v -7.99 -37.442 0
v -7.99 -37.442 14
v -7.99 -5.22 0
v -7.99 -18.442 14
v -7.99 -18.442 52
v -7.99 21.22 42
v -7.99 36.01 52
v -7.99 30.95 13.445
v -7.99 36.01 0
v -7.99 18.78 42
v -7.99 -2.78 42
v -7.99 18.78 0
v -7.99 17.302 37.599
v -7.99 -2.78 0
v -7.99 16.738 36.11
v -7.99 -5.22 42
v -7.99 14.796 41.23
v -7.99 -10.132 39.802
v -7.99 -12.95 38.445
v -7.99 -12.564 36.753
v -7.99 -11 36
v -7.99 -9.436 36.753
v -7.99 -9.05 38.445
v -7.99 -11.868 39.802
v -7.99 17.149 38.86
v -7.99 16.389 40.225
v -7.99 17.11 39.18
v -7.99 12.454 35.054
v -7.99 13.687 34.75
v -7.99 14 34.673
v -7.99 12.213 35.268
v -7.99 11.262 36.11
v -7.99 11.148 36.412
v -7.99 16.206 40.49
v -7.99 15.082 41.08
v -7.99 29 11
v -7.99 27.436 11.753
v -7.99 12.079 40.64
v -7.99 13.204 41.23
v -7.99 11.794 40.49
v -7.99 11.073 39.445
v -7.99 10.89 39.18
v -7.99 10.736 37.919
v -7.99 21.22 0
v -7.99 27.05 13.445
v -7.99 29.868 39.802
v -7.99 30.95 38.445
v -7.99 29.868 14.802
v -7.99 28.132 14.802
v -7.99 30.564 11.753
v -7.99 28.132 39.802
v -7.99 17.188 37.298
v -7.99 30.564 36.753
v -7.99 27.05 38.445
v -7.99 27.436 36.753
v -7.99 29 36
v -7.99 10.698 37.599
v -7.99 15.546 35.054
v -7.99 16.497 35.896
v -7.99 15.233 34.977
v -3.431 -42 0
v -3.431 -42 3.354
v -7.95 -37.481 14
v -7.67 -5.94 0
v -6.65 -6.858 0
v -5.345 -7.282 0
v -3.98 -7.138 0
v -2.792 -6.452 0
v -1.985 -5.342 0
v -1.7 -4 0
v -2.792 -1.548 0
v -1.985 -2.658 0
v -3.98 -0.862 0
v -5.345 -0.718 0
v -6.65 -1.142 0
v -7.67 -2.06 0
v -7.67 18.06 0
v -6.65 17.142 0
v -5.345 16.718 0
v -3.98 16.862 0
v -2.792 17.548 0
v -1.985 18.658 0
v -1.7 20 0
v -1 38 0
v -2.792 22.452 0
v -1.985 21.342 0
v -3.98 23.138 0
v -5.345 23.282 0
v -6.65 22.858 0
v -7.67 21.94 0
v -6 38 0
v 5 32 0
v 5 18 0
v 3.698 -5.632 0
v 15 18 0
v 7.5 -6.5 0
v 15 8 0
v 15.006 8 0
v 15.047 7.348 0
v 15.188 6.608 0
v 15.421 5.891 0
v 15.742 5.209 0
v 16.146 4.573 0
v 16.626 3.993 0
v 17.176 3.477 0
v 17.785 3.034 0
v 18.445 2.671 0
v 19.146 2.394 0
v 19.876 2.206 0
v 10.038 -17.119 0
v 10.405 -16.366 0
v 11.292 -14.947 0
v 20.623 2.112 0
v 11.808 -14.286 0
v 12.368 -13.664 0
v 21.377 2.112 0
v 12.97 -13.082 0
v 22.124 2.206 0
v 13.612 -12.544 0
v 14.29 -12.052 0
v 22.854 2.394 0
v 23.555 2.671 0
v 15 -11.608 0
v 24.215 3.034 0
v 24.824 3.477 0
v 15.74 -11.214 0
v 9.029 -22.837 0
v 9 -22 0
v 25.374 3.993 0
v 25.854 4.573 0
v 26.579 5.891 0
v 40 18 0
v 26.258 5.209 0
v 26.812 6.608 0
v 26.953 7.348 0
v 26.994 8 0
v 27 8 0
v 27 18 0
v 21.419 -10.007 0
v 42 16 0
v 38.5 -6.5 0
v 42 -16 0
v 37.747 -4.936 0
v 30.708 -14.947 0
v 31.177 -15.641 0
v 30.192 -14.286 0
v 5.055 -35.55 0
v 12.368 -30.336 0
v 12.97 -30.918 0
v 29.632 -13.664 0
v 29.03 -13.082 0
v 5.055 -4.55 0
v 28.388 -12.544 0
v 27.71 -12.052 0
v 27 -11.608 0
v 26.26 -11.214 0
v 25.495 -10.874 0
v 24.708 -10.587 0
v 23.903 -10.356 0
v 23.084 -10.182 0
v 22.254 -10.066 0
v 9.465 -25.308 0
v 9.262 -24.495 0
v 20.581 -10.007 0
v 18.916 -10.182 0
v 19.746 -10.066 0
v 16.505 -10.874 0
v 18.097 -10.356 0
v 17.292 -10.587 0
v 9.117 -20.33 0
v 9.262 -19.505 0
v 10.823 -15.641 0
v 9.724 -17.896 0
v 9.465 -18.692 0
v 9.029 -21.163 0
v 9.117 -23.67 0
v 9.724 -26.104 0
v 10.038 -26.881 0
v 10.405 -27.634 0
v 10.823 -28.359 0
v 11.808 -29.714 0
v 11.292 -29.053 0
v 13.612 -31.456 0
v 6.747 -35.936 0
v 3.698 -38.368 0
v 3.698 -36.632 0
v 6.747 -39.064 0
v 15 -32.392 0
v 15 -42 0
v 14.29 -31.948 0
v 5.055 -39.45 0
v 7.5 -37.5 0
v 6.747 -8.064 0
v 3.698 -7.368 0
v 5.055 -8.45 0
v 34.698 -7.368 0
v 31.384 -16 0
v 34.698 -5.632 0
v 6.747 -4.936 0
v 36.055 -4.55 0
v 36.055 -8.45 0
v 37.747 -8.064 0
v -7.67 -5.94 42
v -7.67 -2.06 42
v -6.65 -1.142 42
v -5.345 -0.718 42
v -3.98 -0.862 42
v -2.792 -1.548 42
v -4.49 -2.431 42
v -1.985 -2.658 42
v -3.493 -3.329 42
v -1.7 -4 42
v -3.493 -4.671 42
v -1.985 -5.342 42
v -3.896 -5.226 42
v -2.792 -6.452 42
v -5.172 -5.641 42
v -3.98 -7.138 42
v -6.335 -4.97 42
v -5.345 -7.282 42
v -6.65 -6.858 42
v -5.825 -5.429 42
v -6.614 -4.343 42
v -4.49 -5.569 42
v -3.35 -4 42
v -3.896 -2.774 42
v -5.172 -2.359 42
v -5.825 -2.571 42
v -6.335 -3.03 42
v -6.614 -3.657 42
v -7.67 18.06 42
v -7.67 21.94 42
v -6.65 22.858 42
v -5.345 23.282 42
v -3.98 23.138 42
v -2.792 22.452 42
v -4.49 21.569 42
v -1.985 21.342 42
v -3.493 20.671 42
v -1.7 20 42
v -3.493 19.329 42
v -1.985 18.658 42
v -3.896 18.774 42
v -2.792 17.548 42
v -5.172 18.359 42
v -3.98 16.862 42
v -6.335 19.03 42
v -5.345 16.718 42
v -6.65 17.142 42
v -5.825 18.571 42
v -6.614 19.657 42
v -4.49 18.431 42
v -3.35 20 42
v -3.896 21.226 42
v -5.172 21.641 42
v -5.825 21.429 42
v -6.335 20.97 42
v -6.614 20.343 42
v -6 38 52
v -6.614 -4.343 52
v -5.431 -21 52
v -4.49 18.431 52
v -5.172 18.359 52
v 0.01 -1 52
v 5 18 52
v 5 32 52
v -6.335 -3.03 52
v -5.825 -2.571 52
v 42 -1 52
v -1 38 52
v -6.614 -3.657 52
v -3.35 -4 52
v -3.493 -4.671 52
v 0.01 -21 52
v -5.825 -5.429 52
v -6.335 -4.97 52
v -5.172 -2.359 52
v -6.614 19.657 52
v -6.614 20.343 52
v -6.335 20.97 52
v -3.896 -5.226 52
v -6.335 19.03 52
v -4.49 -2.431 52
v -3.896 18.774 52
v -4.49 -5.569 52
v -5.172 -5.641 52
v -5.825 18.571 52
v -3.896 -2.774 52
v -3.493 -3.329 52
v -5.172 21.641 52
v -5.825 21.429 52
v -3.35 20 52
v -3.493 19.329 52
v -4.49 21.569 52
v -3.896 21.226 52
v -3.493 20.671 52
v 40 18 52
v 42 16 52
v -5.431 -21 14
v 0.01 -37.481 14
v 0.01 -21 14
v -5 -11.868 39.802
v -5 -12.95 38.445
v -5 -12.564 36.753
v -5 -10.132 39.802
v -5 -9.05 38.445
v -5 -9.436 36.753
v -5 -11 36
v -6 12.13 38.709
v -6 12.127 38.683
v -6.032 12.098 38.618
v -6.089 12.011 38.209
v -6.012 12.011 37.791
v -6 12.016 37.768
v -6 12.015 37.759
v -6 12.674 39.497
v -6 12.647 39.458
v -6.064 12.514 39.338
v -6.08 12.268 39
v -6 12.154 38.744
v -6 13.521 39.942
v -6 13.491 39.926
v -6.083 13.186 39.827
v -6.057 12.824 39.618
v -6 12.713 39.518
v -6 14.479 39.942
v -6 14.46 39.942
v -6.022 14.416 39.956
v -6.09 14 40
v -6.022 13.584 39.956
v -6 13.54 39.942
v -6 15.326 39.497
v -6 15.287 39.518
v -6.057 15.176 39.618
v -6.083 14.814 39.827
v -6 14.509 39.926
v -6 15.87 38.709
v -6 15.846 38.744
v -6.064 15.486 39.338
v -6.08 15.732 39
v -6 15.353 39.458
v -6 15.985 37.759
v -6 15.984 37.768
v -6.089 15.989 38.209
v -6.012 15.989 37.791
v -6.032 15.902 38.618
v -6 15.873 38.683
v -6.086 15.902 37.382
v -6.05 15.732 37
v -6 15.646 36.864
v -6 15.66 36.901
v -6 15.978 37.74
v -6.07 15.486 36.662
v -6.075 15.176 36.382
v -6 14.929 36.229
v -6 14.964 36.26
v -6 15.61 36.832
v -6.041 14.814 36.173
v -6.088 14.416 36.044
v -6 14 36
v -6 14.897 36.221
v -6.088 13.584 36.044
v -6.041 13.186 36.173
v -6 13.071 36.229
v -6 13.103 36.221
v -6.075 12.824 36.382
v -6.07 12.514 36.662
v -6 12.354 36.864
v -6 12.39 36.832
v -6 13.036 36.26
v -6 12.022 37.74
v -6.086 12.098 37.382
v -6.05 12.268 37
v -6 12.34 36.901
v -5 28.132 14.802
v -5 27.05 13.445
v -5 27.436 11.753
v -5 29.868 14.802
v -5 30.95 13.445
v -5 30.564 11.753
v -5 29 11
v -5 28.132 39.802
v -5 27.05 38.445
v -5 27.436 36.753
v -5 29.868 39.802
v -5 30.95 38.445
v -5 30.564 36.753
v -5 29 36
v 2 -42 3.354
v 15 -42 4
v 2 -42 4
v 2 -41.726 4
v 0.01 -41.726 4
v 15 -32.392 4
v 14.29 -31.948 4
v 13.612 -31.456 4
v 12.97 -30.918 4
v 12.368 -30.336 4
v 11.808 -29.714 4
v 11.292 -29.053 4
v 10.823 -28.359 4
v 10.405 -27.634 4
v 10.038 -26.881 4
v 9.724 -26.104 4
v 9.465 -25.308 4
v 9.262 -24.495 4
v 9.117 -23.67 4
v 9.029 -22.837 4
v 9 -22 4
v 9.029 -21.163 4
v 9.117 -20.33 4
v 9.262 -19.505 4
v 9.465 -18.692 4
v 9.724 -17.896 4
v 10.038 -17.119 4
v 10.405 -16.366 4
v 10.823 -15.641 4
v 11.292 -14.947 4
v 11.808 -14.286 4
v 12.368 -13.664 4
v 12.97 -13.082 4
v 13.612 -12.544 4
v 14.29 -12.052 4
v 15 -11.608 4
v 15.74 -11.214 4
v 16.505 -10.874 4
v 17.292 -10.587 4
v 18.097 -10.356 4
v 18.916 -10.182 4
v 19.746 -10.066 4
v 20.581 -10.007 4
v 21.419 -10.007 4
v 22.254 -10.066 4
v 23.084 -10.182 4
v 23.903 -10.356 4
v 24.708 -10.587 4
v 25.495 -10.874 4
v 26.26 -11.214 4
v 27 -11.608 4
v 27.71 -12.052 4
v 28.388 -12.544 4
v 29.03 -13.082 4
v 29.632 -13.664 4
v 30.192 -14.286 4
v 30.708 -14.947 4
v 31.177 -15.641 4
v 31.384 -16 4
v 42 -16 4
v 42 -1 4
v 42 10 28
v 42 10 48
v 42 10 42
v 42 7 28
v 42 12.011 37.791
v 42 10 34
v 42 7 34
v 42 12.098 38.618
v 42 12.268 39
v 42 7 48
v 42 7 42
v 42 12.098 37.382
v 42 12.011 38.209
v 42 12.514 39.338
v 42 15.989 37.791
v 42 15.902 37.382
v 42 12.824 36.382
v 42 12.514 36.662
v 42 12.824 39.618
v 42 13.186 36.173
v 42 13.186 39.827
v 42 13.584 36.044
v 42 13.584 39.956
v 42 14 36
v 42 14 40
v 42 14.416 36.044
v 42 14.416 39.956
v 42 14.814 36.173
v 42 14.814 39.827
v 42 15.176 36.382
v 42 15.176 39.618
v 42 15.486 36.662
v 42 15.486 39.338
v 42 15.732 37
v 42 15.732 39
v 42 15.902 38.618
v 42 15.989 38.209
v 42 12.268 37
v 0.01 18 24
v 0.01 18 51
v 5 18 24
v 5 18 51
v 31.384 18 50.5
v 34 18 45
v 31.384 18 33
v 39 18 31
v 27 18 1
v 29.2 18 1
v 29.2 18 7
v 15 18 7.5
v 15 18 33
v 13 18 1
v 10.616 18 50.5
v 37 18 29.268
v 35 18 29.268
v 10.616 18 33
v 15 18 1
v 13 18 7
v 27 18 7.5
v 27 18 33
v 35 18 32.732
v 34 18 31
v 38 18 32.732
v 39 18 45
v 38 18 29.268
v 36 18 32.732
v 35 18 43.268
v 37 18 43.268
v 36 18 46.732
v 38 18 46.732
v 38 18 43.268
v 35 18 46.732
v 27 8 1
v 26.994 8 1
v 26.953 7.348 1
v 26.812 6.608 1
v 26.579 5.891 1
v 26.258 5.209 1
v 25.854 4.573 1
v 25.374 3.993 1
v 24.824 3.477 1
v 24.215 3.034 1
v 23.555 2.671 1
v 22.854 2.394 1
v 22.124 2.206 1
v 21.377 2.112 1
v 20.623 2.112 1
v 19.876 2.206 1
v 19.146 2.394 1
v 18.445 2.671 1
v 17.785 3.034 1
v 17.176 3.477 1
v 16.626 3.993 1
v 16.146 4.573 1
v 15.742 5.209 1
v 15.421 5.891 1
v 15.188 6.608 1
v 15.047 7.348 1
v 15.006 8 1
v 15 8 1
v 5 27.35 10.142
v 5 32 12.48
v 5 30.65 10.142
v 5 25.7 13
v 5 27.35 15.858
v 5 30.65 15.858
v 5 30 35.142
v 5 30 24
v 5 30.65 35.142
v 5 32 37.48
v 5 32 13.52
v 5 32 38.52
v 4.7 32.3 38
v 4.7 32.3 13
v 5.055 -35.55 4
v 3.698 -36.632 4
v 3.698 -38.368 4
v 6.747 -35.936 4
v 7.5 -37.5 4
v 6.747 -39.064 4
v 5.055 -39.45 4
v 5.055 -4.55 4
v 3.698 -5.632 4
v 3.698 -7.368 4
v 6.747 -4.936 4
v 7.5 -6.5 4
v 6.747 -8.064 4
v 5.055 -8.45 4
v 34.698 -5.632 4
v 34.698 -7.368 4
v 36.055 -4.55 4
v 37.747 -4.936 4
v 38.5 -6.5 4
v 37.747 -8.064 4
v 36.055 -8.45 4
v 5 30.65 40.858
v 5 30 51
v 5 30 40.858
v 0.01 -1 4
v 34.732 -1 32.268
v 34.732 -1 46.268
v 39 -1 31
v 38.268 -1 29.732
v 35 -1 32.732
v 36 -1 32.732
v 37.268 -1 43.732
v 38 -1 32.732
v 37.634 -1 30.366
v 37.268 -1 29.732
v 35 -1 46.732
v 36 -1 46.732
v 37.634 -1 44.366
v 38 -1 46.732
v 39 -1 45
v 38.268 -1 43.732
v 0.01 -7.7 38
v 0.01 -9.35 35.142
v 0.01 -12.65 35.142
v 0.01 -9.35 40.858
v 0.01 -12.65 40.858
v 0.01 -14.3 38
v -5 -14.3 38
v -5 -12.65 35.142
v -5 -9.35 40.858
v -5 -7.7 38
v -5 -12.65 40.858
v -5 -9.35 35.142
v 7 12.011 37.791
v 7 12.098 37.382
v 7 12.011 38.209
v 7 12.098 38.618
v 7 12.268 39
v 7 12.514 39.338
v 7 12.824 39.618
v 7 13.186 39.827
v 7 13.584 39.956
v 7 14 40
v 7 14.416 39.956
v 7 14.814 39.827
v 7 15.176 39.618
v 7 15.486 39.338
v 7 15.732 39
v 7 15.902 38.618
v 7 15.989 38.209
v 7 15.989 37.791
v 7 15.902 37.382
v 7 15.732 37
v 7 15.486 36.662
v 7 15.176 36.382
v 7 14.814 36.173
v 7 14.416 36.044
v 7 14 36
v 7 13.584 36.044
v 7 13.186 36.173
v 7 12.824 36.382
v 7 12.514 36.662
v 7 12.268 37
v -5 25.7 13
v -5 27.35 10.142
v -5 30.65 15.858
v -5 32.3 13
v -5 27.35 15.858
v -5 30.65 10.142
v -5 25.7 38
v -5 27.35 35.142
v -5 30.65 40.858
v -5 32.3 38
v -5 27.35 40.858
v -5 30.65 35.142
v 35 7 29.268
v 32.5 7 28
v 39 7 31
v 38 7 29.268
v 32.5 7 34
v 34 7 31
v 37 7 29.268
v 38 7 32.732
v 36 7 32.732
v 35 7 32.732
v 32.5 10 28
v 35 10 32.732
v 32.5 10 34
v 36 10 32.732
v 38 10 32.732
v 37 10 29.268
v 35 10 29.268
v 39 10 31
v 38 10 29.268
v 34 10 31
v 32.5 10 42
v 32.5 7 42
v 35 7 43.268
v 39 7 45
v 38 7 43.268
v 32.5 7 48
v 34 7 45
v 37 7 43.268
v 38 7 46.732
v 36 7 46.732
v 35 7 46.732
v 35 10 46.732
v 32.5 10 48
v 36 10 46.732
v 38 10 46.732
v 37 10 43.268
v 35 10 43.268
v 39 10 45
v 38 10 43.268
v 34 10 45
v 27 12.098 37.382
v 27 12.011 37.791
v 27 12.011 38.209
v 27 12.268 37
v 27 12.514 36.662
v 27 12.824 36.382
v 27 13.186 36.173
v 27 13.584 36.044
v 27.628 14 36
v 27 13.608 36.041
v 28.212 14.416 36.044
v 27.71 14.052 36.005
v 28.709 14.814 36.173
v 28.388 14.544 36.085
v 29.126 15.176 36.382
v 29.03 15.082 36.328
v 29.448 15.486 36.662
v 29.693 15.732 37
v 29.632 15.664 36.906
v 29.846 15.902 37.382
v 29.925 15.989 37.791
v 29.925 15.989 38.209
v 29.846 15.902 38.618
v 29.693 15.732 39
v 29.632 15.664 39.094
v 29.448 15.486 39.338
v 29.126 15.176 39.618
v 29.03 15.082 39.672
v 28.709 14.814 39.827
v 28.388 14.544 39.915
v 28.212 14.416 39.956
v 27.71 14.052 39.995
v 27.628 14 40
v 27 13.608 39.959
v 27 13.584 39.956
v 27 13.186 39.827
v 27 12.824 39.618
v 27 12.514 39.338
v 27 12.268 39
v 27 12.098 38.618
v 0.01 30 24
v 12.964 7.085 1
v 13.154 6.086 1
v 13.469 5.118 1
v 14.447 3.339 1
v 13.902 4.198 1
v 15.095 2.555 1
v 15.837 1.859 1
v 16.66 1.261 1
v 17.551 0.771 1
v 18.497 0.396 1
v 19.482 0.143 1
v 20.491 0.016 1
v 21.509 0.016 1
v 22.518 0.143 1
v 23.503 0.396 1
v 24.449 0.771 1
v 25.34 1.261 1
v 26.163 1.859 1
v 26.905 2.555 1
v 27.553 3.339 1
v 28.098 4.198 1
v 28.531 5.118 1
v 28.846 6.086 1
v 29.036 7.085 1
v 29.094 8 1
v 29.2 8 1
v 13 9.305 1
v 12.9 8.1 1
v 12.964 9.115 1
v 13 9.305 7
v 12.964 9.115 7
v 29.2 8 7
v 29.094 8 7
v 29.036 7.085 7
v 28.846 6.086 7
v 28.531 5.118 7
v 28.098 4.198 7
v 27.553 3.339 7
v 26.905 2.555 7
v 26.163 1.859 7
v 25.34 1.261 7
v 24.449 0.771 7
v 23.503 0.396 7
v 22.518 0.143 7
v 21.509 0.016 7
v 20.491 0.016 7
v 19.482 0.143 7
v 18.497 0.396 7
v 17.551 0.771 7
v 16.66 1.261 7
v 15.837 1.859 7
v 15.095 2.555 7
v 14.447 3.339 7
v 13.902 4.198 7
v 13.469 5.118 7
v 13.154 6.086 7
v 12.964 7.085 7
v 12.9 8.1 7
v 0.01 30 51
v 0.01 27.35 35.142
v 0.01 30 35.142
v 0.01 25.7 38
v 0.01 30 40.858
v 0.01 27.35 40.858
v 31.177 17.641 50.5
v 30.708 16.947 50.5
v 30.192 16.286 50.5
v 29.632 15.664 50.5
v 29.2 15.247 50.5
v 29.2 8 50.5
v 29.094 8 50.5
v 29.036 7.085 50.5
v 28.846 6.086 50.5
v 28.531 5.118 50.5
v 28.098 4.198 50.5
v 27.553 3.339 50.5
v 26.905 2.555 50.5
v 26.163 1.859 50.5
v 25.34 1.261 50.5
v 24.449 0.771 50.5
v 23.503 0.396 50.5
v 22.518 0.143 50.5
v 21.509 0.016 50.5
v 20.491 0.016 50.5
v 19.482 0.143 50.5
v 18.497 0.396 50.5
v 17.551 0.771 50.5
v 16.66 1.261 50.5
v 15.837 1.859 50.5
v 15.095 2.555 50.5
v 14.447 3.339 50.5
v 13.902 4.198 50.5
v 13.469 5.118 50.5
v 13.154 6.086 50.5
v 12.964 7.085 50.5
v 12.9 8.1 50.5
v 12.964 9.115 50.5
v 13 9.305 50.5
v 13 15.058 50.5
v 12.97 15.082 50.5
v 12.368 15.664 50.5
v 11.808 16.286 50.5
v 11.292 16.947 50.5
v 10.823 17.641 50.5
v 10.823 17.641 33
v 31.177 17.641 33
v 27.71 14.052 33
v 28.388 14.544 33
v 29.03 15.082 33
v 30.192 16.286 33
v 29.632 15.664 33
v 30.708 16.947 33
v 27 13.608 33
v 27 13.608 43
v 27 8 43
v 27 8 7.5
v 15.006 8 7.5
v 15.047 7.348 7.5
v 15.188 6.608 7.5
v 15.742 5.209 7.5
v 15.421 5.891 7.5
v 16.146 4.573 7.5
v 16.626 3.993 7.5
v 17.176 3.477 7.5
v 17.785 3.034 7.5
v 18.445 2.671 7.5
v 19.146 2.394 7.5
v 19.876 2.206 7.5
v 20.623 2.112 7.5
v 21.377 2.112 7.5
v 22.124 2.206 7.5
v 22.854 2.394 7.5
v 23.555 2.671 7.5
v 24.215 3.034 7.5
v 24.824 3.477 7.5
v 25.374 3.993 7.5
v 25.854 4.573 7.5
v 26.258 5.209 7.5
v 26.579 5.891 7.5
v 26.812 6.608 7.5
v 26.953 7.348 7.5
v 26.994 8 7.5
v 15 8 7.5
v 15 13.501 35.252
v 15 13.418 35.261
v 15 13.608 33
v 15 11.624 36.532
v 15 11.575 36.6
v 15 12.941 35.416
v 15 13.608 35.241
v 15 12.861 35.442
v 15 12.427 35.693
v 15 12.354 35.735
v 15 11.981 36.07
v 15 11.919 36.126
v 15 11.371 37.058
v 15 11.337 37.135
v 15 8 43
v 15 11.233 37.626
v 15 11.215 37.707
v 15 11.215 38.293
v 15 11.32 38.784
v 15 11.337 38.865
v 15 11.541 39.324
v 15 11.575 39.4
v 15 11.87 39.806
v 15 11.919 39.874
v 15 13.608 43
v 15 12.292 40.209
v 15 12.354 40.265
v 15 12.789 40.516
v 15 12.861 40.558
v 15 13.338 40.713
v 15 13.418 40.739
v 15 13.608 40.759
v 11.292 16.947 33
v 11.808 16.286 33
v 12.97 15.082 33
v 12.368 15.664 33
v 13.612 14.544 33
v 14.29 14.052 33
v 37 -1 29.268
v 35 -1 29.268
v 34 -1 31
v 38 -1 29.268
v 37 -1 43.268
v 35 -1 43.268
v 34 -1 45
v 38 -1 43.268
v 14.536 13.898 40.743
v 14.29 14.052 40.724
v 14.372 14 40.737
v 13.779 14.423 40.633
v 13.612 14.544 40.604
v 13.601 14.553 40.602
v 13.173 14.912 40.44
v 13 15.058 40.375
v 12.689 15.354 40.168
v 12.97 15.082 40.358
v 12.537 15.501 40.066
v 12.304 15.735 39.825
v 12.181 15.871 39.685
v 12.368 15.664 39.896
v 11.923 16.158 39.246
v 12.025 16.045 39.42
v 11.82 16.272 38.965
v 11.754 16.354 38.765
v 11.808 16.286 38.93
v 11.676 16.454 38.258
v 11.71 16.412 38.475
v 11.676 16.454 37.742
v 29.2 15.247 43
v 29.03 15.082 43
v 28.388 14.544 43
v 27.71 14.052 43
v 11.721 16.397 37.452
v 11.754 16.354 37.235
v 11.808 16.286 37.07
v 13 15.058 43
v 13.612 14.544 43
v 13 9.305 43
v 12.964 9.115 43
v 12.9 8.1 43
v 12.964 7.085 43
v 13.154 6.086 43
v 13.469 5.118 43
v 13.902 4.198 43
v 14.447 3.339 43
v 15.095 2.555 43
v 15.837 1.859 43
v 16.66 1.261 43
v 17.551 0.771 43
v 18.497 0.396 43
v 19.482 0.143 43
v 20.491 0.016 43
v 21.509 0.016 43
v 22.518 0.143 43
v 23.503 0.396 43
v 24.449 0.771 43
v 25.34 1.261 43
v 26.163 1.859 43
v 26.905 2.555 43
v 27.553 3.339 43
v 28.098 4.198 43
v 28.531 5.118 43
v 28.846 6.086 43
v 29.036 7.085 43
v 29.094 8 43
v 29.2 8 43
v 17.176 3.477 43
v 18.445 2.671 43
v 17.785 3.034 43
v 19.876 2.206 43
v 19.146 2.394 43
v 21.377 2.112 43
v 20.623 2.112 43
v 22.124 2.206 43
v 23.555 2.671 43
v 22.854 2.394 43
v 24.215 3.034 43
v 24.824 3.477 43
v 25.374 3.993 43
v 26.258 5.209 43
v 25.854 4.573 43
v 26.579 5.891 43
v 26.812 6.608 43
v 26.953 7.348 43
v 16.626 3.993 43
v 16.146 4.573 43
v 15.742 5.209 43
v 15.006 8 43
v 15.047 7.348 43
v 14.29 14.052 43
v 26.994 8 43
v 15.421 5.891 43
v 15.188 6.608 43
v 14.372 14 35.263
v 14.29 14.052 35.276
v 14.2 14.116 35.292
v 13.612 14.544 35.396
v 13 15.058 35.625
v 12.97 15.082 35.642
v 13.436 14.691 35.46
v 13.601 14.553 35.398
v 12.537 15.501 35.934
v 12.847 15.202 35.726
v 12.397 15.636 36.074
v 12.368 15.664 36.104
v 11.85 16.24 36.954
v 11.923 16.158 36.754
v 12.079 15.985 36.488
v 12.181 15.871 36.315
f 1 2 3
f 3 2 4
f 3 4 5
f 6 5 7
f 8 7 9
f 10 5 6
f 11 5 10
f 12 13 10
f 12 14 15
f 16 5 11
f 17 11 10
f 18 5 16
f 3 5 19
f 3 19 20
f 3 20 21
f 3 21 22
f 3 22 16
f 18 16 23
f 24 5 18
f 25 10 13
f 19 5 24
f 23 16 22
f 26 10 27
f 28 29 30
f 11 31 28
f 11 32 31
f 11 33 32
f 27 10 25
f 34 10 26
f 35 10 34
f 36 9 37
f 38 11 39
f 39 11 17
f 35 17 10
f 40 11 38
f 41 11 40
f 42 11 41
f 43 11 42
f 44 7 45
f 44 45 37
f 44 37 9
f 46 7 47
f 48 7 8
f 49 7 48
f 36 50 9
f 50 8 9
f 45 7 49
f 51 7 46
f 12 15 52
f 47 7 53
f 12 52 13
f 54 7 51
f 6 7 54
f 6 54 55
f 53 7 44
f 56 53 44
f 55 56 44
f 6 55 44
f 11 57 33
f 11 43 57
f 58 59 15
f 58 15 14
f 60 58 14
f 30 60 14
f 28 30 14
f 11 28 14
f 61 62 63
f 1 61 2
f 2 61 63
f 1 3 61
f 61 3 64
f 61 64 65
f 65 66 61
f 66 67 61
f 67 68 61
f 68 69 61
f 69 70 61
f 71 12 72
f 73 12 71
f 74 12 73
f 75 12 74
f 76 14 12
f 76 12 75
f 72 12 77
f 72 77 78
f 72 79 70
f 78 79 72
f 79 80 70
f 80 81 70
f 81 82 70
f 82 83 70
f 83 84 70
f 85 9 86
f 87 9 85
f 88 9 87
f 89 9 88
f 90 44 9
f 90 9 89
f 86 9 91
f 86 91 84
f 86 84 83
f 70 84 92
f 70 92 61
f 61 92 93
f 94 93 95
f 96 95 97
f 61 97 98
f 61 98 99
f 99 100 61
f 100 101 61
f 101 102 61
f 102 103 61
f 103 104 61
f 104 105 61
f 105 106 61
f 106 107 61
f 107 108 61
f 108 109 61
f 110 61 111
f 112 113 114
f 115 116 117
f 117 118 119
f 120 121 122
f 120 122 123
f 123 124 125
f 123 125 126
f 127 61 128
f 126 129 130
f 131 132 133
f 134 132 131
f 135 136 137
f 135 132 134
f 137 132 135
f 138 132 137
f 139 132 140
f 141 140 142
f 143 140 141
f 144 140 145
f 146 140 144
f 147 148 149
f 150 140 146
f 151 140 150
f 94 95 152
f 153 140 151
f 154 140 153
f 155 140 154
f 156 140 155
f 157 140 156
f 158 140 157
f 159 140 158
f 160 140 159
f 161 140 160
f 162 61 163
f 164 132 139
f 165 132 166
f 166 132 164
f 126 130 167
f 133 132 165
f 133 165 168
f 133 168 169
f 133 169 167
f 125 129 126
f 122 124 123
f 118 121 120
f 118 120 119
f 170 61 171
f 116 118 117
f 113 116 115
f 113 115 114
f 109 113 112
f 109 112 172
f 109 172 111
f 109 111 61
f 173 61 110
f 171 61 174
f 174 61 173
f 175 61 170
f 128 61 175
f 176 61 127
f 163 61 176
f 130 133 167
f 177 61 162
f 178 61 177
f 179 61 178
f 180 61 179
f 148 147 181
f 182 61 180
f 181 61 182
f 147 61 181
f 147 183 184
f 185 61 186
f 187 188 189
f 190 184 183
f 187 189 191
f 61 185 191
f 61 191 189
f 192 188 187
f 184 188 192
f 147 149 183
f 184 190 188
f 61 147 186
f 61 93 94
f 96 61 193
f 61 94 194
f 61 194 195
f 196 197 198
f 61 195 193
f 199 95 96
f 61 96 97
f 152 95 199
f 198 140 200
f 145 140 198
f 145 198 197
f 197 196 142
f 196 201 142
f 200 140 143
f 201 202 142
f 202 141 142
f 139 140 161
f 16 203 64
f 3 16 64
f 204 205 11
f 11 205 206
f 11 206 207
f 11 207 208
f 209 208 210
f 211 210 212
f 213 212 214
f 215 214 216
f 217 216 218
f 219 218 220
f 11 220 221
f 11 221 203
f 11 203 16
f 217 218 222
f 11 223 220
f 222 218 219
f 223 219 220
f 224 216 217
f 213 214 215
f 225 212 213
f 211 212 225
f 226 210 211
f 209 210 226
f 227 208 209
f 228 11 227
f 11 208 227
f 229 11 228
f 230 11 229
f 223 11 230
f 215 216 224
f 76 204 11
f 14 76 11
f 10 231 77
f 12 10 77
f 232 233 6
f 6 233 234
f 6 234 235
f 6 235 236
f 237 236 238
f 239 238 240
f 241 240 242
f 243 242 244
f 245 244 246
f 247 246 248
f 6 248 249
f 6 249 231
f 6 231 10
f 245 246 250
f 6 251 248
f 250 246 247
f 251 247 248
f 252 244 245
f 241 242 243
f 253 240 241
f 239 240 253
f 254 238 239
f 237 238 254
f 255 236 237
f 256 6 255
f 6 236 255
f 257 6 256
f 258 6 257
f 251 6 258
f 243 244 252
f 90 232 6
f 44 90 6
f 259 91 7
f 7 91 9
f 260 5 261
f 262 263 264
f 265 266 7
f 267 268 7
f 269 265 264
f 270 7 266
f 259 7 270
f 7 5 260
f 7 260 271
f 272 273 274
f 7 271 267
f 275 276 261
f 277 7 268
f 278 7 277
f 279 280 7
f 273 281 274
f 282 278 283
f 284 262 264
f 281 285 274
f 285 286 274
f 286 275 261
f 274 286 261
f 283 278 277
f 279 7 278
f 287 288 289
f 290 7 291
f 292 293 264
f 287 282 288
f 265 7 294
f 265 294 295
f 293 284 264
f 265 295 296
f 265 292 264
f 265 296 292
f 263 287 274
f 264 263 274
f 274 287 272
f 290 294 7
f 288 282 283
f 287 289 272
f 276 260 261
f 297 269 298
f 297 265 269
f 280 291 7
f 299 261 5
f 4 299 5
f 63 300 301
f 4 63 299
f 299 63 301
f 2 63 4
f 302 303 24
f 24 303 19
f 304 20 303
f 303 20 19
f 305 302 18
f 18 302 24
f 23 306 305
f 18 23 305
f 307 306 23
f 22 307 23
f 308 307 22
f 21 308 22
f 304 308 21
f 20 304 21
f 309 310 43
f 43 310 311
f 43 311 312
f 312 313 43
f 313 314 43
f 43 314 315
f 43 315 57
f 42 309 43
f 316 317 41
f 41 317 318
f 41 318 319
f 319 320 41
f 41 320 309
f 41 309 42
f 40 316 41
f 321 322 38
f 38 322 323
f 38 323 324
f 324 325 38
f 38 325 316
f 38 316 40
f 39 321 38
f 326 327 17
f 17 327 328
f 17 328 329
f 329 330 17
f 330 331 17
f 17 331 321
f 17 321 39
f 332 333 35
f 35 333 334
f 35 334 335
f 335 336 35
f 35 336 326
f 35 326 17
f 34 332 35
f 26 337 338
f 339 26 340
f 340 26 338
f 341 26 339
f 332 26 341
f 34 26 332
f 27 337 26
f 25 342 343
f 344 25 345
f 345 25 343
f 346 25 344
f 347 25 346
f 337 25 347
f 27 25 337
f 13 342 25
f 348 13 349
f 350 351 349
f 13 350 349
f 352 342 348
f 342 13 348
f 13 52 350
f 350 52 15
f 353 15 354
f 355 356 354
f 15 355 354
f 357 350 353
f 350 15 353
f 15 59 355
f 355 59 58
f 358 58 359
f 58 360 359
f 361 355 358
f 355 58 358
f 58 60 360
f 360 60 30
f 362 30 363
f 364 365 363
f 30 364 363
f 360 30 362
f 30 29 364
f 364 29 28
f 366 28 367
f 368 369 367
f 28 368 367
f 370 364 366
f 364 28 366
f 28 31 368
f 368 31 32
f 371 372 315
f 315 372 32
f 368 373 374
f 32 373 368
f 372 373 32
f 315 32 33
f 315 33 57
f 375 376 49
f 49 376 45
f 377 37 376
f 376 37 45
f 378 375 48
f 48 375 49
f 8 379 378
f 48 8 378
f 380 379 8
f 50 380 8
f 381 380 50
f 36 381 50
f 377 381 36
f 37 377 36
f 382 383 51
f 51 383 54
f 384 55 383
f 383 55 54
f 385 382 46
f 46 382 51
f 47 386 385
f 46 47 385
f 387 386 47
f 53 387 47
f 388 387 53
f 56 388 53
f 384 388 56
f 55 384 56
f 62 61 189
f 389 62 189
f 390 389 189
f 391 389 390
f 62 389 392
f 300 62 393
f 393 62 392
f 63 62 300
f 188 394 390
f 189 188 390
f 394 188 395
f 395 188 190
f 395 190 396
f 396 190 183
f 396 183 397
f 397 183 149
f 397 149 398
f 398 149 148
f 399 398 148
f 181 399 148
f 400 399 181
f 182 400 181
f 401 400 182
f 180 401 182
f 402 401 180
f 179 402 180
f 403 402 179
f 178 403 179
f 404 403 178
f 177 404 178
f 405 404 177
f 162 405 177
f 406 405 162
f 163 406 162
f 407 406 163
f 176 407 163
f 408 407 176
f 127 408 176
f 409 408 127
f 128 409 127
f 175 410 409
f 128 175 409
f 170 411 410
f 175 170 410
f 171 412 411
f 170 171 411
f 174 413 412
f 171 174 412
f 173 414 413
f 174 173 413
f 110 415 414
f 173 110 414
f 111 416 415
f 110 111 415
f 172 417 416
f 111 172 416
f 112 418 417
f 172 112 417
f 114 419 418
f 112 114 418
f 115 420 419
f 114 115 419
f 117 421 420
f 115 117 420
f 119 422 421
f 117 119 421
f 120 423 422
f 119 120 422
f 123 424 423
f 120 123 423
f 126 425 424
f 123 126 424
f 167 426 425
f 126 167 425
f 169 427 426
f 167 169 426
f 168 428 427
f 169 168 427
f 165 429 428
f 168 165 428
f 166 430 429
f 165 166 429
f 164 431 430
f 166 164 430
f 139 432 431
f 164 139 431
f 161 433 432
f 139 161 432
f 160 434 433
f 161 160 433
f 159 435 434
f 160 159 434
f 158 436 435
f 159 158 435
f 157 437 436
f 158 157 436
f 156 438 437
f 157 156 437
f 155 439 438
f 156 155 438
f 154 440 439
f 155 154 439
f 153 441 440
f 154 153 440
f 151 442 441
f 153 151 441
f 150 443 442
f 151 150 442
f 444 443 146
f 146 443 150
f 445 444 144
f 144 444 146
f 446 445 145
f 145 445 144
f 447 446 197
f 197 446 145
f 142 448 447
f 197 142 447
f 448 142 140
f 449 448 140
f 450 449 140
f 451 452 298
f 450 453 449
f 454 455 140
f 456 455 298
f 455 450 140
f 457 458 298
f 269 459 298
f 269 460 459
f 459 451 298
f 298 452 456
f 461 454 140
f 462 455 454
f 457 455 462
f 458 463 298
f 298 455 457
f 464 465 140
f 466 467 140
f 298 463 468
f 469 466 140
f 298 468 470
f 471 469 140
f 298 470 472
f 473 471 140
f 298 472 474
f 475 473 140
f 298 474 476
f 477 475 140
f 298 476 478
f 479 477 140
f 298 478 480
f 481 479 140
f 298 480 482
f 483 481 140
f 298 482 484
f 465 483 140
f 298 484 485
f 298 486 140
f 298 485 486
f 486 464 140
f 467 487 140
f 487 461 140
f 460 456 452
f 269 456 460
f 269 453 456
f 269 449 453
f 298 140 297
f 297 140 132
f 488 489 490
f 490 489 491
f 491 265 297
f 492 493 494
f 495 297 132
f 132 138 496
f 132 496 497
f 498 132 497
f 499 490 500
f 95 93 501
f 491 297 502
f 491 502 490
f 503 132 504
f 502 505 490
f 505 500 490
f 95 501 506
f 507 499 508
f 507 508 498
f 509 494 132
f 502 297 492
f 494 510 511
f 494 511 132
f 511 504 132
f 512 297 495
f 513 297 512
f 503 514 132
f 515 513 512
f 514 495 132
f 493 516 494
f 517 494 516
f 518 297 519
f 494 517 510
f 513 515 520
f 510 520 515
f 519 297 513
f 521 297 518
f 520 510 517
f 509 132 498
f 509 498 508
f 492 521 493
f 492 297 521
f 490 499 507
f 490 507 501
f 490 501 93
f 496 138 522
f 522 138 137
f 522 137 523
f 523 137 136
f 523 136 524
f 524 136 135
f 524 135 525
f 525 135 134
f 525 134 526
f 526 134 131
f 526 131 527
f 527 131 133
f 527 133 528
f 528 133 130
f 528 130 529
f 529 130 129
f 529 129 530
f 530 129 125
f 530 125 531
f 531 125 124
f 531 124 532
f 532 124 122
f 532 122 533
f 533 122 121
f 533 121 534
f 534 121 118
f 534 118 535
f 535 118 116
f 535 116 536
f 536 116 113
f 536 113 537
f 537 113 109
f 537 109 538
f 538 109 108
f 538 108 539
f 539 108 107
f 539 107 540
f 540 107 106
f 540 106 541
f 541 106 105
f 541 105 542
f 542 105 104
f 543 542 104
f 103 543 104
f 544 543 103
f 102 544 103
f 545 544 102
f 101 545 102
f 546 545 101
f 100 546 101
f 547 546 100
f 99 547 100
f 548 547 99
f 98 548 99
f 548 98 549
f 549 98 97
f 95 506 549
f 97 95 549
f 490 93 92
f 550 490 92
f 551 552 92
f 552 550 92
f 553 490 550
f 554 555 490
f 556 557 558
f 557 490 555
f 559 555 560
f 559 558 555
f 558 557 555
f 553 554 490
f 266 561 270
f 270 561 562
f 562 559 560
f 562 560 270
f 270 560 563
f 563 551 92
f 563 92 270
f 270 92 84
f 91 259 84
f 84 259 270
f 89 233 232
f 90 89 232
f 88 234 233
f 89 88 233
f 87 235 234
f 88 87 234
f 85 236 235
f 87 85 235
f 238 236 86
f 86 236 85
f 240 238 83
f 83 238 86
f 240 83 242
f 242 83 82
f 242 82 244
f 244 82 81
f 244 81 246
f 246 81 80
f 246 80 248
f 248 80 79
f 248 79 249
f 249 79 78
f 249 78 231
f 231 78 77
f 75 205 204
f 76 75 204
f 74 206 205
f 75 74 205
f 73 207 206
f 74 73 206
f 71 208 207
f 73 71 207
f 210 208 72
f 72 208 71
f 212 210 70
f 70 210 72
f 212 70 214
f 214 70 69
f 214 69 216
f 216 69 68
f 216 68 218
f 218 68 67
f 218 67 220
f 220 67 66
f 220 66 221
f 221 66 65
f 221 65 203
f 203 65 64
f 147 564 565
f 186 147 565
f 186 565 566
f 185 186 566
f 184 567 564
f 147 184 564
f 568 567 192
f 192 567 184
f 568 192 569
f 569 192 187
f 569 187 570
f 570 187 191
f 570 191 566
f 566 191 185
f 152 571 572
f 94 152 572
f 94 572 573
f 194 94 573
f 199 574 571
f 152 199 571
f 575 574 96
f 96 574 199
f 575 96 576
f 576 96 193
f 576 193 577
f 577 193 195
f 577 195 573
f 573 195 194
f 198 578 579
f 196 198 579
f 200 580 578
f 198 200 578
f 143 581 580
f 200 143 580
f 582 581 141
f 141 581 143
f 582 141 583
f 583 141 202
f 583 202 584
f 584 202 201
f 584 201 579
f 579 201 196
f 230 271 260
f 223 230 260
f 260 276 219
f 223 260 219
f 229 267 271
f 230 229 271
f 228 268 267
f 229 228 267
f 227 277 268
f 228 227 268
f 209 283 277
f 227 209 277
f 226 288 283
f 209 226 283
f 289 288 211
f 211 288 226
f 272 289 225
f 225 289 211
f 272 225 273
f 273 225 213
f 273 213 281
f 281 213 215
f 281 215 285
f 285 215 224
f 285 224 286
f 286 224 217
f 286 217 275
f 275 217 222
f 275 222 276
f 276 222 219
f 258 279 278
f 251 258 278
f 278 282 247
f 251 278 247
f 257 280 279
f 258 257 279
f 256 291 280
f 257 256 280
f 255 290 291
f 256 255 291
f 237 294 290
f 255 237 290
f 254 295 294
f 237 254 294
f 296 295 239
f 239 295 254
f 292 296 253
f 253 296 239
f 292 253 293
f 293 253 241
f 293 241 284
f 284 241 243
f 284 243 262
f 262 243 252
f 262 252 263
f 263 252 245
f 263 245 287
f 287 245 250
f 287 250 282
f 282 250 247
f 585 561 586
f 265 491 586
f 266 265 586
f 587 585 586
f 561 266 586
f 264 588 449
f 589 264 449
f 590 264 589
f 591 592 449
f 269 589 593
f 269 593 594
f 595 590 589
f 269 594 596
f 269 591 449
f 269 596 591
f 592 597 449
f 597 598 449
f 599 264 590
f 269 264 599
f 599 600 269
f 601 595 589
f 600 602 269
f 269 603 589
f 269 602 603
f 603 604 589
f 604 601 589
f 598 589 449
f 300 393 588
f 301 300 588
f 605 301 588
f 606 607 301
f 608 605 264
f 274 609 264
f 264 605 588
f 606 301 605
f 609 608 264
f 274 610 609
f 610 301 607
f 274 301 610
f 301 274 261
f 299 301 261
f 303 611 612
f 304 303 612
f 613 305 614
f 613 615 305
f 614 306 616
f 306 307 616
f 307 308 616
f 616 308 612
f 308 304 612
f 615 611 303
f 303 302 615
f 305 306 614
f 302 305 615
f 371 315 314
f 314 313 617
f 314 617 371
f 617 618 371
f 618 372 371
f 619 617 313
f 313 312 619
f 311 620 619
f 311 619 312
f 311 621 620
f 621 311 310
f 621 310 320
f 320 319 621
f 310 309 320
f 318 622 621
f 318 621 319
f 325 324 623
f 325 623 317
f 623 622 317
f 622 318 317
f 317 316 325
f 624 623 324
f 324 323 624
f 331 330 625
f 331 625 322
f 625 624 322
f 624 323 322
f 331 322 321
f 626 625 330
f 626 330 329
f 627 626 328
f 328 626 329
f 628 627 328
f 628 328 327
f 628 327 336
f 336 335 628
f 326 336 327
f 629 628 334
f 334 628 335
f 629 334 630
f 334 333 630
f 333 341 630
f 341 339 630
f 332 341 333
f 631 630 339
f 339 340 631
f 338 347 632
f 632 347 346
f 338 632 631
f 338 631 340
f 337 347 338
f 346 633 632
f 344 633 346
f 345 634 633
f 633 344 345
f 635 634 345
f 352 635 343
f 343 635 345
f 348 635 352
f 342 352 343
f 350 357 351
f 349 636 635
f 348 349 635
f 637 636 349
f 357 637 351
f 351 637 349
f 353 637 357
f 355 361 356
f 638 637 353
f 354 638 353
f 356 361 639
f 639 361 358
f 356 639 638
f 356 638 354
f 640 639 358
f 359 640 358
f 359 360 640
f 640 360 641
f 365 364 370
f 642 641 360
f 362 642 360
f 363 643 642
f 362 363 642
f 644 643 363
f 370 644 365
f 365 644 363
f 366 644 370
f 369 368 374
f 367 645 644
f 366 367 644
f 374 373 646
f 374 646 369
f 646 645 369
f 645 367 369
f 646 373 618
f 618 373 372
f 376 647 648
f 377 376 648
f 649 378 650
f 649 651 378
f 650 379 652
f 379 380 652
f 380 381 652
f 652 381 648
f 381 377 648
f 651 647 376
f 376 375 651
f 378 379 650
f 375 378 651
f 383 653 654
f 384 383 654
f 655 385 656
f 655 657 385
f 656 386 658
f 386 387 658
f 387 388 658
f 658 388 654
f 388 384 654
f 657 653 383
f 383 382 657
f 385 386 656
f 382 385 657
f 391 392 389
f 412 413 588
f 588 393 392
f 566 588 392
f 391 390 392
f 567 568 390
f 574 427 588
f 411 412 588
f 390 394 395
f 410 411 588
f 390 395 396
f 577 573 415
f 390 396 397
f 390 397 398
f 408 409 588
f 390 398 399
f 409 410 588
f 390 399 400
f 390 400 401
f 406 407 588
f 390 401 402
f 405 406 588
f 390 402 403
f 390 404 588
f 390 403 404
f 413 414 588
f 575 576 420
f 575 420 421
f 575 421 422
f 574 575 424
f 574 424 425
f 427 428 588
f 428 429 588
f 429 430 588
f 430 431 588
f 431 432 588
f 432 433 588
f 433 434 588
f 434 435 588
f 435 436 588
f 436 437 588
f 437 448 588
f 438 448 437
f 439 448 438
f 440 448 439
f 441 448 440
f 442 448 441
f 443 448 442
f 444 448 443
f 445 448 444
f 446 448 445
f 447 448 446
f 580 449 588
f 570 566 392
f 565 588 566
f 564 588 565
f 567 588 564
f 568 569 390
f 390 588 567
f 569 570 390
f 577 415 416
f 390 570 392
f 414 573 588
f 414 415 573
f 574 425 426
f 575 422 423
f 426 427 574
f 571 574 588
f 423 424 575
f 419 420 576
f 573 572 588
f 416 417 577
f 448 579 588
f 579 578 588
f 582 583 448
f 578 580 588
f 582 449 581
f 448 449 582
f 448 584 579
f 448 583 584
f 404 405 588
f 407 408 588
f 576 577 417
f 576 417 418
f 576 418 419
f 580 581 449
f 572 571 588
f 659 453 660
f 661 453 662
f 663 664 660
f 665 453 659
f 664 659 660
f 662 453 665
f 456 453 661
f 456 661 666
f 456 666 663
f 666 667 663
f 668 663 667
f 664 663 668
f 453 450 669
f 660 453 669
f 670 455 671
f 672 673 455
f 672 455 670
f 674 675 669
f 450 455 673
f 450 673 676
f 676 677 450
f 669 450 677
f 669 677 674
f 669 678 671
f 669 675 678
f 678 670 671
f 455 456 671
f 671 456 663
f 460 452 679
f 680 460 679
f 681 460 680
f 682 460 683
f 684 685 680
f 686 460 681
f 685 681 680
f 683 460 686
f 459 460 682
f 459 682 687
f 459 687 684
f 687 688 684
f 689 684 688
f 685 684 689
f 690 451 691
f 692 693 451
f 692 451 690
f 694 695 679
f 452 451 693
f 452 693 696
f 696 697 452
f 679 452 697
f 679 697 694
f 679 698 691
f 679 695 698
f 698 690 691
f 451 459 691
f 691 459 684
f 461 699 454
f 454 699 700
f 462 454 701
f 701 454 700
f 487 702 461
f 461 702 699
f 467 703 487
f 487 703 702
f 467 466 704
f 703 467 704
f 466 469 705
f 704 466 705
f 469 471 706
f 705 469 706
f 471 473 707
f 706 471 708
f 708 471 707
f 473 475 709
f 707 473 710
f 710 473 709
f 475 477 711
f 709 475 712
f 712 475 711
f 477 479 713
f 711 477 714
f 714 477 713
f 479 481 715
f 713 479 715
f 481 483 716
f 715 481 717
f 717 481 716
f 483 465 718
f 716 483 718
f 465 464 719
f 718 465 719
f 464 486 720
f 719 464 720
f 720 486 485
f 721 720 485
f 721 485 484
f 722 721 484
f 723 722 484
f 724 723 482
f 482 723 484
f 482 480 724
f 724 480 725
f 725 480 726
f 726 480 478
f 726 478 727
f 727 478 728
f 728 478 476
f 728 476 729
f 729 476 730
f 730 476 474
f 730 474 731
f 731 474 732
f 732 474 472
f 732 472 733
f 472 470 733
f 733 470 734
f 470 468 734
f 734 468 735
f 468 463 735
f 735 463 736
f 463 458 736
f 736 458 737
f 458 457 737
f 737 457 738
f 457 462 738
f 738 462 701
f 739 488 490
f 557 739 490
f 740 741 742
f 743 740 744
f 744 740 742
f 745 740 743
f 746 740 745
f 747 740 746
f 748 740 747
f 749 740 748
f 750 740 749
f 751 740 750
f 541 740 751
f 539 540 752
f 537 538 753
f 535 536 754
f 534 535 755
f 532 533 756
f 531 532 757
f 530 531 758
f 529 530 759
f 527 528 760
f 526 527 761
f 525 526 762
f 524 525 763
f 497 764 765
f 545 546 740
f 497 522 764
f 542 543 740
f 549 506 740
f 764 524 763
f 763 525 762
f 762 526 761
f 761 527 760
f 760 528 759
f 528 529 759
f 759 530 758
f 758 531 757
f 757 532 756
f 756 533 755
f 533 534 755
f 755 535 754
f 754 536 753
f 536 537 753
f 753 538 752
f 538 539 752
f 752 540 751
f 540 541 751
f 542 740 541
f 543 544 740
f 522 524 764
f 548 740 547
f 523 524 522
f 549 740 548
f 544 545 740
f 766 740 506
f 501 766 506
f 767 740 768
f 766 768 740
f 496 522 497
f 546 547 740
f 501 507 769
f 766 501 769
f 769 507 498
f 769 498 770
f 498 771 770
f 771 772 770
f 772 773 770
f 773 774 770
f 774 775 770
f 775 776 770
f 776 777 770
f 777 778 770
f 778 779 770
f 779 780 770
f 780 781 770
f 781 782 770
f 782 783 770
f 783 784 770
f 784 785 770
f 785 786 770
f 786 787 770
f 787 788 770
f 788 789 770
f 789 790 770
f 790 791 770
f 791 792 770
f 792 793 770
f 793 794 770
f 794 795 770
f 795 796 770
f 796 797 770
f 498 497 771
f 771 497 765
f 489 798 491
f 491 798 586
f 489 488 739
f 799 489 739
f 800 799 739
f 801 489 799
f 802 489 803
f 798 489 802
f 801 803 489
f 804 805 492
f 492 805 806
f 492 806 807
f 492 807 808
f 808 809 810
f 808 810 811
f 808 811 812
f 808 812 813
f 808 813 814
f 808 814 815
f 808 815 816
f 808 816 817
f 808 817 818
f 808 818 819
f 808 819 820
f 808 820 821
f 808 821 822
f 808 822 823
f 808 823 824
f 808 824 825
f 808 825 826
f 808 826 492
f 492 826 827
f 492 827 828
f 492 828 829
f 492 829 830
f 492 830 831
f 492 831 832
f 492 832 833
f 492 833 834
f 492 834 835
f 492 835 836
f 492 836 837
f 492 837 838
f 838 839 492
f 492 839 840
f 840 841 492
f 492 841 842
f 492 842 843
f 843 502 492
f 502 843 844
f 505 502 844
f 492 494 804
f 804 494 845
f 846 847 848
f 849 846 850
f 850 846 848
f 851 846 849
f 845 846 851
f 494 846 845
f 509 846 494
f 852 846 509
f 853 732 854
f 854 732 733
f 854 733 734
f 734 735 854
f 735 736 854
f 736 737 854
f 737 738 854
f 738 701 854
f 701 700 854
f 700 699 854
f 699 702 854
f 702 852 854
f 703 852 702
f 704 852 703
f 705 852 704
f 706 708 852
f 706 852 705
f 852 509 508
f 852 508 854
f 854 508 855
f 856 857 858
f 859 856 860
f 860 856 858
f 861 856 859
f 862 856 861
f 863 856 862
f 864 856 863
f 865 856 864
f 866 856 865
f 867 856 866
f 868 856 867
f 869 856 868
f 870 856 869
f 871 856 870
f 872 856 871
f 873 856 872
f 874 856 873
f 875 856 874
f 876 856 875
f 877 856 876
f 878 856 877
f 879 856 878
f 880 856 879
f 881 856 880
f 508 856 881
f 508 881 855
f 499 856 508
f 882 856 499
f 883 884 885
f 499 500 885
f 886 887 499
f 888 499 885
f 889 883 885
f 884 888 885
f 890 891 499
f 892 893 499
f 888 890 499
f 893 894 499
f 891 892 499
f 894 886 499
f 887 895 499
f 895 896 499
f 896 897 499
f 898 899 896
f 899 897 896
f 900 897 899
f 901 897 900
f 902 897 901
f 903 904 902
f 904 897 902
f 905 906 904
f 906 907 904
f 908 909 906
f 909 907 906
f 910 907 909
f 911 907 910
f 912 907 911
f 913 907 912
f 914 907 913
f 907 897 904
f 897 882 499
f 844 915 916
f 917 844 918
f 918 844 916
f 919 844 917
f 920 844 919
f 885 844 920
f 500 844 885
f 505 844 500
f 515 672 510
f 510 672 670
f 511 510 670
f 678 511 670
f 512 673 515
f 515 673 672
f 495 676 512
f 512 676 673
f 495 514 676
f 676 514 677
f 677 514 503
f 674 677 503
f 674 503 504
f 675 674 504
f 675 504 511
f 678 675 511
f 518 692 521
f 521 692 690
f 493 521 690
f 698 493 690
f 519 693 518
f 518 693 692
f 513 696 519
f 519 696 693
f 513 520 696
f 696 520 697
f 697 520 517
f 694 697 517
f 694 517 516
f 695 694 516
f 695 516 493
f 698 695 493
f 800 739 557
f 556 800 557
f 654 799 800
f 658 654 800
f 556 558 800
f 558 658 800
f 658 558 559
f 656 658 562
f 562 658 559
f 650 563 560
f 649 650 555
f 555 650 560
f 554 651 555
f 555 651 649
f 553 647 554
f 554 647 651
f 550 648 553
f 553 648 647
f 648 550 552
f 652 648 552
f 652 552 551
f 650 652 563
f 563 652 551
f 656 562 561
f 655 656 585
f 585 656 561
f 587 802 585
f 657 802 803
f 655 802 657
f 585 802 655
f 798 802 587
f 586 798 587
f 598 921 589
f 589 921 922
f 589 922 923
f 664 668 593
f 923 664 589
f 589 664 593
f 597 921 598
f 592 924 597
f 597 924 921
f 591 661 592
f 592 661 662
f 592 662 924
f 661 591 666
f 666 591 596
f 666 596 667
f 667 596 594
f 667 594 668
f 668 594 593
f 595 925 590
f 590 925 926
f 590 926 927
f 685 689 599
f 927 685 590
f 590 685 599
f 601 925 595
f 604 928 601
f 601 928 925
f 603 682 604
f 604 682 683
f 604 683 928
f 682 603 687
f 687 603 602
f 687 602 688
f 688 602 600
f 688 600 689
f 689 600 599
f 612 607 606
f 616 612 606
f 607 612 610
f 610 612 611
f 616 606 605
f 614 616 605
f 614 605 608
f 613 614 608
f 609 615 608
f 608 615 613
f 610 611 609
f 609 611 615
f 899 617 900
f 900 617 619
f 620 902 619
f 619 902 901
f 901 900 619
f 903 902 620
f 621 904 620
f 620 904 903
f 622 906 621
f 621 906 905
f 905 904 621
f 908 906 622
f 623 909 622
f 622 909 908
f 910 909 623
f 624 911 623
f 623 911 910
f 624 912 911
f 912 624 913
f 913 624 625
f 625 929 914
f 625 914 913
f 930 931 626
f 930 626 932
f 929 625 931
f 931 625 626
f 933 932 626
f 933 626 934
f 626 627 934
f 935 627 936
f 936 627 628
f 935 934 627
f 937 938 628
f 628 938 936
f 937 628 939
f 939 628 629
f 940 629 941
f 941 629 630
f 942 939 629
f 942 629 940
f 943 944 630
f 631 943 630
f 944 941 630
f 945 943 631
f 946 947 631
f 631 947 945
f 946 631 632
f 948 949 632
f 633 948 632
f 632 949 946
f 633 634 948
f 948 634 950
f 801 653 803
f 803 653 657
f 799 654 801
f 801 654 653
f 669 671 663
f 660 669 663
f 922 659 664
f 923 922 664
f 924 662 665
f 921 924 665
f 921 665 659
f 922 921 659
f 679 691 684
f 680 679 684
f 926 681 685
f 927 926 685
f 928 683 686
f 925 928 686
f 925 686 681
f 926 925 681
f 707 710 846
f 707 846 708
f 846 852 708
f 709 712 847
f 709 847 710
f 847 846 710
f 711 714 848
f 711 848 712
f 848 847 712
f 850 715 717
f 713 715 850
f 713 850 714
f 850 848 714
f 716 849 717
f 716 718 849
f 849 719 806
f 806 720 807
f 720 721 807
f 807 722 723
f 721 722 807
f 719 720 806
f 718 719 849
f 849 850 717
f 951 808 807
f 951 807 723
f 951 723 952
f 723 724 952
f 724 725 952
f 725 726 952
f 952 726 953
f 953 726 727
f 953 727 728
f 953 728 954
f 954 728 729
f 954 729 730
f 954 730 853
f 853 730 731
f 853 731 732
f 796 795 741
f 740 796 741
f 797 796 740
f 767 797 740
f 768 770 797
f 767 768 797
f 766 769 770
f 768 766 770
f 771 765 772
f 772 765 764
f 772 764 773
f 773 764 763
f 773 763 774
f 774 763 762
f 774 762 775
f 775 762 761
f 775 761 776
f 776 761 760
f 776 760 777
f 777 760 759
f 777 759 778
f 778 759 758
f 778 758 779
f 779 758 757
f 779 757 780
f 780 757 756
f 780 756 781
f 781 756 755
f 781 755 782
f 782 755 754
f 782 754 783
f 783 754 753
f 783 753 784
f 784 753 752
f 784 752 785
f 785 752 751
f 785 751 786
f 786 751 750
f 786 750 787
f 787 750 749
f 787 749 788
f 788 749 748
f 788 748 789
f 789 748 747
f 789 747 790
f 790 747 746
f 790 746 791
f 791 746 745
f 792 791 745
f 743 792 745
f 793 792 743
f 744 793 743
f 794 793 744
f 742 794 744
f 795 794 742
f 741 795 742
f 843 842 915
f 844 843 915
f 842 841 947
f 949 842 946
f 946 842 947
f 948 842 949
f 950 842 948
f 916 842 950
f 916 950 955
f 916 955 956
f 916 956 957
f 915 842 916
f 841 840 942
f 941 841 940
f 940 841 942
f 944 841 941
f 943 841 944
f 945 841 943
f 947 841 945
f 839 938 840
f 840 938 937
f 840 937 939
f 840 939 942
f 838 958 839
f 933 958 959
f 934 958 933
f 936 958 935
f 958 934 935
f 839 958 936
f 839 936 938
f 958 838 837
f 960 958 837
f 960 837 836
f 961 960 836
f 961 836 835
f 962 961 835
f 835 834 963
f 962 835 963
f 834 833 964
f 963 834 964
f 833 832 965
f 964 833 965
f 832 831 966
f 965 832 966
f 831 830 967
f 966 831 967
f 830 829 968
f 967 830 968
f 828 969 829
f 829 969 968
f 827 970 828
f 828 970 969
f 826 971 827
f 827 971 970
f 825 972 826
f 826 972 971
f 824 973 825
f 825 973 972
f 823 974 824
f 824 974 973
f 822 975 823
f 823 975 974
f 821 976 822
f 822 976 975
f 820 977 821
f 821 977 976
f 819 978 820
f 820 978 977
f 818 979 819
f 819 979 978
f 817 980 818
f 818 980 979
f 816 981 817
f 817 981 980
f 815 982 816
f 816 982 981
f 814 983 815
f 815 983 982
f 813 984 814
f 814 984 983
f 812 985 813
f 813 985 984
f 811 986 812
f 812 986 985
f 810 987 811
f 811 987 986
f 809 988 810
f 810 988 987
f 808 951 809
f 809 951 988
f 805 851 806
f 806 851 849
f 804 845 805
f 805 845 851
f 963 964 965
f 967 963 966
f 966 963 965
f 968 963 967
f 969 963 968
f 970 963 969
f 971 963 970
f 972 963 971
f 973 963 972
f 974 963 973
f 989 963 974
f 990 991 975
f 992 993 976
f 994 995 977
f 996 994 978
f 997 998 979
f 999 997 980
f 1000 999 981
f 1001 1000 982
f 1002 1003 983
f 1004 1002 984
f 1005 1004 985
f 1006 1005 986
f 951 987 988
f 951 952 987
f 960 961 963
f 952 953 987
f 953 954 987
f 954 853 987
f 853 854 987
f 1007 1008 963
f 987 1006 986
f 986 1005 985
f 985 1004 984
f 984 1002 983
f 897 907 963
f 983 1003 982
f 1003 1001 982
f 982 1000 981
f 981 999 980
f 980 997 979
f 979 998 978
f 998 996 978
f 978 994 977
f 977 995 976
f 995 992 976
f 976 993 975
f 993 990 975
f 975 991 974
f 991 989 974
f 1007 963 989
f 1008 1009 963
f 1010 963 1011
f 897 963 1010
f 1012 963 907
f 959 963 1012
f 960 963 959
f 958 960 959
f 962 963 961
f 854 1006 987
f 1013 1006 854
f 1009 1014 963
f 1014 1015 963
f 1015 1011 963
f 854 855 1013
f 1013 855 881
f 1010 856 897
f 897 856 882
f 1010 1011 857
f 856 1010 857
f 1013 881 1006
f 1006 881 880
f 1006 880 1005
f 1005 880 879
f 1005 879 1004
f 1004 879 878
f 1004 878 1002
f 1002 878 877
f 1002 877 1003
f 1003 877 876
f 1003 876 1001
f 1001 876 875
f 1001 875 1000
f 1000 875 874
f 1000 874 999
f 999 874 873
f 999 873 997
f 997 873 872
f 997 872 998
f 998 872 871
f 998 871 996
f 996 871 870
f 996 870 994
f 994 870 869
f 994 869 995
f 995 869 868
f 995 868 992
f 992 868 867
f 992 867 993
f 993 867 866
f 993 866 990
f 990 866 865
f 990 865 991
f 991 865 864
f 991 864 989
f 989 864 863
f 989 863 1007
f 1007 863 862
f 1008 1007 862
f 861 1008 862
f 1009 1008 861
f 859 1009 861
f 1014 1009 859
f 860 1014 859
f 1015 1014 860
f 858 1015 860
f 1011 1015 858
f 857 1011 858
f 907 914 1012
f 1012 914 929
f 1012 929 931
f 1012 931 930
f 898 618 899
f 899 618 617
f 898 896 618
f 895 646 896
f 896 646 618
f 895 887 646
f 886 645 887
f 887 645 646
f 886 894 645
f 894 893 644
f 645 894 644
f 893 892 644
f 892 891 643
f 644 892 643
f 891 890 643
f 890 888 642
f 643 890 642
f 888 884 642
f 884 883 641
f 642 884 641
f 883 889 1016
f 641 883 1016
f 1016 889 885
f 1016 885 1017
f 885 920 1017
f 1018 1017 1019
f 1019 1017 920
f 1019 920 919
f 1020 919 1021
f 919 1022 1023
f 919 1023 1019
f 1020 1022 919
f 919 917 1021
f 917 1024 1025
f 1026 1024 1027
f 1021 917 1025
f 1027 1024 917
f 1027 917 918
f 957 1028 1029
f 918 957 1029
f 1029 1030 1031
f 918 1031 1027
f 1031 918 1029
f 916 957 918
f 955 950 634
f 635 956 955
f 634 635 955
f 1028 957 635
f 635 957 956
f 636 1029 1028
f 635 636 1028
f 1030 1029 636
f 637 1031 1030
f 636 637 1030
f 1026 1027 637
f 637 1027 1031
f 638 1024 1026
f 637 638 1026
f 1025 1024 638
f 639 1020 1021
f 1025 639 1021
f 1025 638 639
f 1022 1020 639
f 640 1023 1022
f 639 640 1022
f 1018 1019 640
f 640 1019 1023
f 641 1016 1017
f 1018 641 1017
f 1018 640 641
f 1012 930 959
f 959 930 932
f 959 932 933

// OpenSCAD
// PRUSA iteration3
// NEMA 17 extruder body
// GNU GPL v3
// Modified by Sam Sheffield <hello@samsheffield.com>
// Original by Josef Průša <iam@josefprusa.cz>, Kliment Yanev and contributors
// http://www.reprap.org/wiki/Prusa_Mendel
// http://prusamendel.org

module nozzlemount(){
rotate([0,90,0]) cylinder(r=2, h=70, $fn=30);
translate([17,0,0]) rotate([0,90,0]) cylinder(r2=3,r1=2, h=10, $fn=30);
translate([1,0,0]) rotate([0,90,0]) cylinder(r1=4, r2=2, h=3);
translate([0,15,0]) rotate([0,90,0]) cylinder(r=2, h=70);
translate([10-5,15,0]) rotate([0,90,0]) rotate([0,0,30]) cylinder(r=3.3, h=70,$fn=6);
translate([0,-25,0]) rotate([0,90,0]) cylinder(r=2, h=70);
translate([10-5,-25,0]) rotate([0,90,0]) rotate([0,0,30])cylinder(r=3.3, h=70,$fn=6);
}

module fanmount(){
	translate([0,15,0]) rotate([0,90,0]) cylinder(r=2, h=70);
	translate([10-5,15,0]) rotate([0,90,0]) rotate([0,0,30]) cylinder(r=3.3, h=70,$fn=6);
}

difference(){
union(){
translate([0,-1,0])cube([42,19,52]);
translate([0,-42,0]) cube([42,42+3,4]);
translate([-7.99,-42,0]) cube([8,80,52]);

translate([-1,30,0]) cube([6, 7, 52]);


translate([-1,15,51]) cube([6, 20, 1]);

translate([-1,15,0]) cube([6, 20, 24]);

}

//antiwarpagenation

translate([46,-91,-1])rotate([0,0,45])cube(40);
translate([-11,-91,-1])rotate([0,0,45])cube([40,40,60]);
translate([46,12,-1])rotate([0,0,45])cube([40,40,60]);
translate([-32,12,-1])rotate([0,0,45])cube([40,40,60]);
translate([6,31,-1])rotate([0,0,45])cube([40,40,60]);
translate([-11,-72,14])rotate([0,0,45])cube([40,40,60]);

// motor circle cut
translate([0,-1,0.5]){
translate([21,-21,-1]) cylinder(r=12, h=5, $fn=90);

 translate([15,-45,-1]) cube([30,30,5]);

translate([21+15.5,-21+15.5,-1]) cylinder(r=2, h=5);
translate([21+15.5,-21-15.5,-1]) cylinder(r=2, h=5);
translate([21-15.5,-21+15.5,-1]) cylinder(r=2, h=5);
translate([21-15.5,-21-15.5,-1]) cylinder(r=2, h=5);
}



// idler bearing cutout
translate([21,24,33]) cylinder(r=12, h=17.5, $fn=90);

translate([21,8.1,7.5]) cylinder(r=6, h=43, $fn=50);

translate([21,8.1,-1]) cylinder(r=6, h=3, $fn=50);
// Second filament drive bearing
translate([21,8.1,1]) cylinder(r=8.1, h=6, $fn=50);
// Second filament drive bearing insert cutout

translate([13,8,43]) cube([16.2,20,7.5]);


translate([21,8.1,-5+52-4]) cylinder(r=8.1, h=7.5, $fn=50);
translate([-6+21,8,7.5]) cube([12,12,40]);

translate([-6+21,8,-50+7]) cube([12,12,50]);


translate([13,8,1]) cube([16.2,20,6]);

//mounting to carriage
translate([-5,20,-28]){
translate([0,0,0])rotate([0,0,0])cylinder(r=3.3, h=70, $fn=15);
translate([0,0-24,0])rotate([0,0,0])cylinder(r=3.3, h=70, $fn=15);
translate([0,0,30])rotate([0,0,0])cylinder(r=3.3/2, h=70, $fn=15);
translate([0,0-24,30])rotate([0,0,0])cylinder(r=3.3/2, h=70, $fn=15);
}

// idler nuts and filament channels

translate([0,0,-2]){
translate([-10,2+8+4,52-12]) nozzlemount();
//translate([-10,2+8+4,52-12-25]) nozzlemount();
translate([-10,2+8+4,52-12-25]) fanmount();
translate([32.5,7,52-12-7-3]) cube([15,3,6]);

translate([32.5,7,52-12-7-3+14]) cube([15,3,6]);


//translate([5+32,-1,52-12+7]) rotate([0,90,90]) rotate([0,0,30]) cylinder(r=3.3, h=10, $fn=6);
//translate([5+32,-1,52-12-7]) rotate([0,90,90]) rotate([0,0,30]) cylinder(r=3.3, h=10, $fn=6);



translate([5+32,-1,52-12+7]) rotate([0,90,90]) rotate([0,0,30]) cylinder(r=2, h=40, $fn=6);
translate([5+32,-1,52-12-7]) rotate([0,90,90]) rotate([0,0,30]) cylinder(r=2, h=40, $fn=6);
translate([5+31,-1,52-12+7]) rotate([0,90,90]) rotate([0,0,30]) cylinder(r=2, h=40, $fn=6);
translate([5+31,-1,52-12-7]) rotate([0,90,90]) rotate([0,0,30]) cylinder(r=2, h=40, $fn=6);


// pretty cutout
//translate([-10,27,0]) rotate([-23,0,0]) cube([20,12,50]);
//translate([0,27,6]) rotate([0,23,0]) cube([20,12,50]);

// pretty cutout
translate([-10,-66,0]) rotate([-23,0,0]) cube([12,20,90]);
translate([-10,-41,16]) cube([12,20,90]);
}
}
